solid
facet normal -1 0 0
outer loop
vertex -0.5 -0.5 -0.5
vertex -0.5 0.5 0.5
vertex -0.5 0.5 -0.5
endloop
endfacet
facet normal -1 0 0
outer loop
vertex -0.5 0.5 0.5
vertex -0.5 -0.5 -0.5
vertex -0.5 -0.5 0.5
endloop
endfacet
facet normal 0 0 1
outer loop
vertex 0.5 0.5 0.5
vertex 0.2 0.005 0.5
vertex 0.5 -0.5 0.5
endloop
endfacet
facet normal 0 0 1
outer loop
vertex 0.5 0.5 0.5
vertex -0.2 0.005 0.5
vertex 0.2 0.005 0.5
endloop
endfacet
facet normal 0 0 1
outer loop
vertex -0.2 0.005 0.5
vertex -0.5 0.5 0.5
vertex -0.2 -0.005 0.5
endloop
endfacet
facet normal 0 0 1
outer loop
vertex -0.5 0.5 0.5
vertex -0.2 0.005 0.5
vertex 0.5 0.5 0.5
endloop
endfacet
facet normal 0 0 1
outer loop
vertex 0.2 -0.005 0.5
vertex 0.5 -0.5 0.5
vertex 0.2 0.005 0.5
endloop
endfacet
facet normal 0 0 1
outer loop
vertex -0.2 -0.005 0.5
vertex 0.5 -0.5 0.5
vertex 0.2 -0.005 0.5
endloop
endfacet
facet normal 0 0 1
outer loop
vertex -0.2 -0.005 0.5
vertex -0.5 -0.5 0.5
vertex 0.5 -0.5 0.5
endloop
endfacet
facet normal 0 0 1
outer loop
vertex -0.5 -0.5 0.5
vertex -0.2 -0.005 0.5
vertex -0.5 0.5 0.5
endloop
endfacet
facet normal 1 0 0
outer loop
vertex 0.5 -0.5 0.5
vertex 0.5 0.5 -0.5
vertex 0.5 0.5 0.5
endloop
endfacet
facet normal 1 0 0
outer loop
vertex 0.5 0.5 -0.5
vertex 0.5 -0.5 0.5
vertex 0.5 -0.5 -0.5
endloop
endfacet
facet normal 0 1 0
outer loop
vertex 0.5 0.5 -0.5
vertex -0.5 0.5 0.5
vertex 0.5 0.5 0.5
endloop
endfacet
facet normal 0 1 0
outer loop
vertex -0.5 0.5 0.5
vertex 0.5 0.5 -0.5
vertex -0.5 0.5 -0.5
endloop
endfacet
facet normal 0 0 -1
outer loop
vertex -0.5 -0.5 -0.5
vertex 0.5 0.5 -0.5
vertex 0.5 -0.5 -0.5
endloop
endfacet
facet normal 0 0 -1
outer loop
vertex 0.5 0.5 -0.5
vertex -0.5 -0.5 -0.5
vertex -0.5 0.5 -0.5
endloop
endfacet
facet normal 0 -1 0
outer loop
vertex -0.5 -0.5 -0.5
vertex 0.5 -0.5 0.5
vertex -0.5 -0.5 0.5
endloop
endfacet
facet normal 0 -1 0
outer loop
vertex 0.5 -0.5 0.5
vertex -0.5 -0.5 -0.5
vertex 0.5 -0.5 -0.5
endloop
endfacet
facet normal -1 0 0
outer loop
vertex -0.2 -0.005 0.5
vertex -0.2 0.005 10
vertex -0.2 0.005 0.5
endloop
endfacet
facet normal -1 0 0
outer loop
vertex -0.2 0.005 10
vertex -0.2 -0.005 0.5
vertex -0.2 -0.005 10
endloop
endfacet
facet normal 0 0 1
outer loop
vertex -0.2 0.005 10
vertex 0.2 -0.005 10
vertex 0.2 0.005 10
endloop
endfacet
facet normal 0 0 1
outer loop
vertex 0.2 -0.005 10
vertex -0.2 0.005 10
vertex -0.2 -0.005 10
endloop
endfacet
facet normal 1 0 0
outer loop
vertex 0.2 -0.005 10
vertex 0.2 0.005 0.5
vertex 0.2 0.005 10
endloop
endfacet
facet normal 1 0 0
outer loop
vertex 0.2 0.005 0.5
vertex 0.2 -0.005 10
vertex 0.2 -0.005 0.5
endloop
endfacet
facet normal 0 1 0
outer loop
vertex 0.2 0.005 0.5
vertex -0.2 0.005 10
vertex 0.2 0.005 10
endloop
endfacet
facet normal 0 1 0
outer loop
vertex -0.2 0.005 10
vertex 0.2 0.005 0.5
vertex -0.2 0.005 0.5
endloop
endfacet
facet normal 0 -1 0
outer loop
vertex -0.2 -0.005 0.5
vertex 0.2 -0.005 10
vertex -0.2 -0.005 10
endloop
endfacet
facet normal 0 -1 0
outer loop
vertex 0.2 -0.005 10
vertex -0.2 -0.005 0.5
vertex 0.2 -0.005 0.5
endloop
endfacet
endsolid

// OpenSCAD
union(){
cube([1,1,1],center=true);
translate([-0.2,-0.005,0.4])
    cube([0.4,0.01,9.6]);
};
